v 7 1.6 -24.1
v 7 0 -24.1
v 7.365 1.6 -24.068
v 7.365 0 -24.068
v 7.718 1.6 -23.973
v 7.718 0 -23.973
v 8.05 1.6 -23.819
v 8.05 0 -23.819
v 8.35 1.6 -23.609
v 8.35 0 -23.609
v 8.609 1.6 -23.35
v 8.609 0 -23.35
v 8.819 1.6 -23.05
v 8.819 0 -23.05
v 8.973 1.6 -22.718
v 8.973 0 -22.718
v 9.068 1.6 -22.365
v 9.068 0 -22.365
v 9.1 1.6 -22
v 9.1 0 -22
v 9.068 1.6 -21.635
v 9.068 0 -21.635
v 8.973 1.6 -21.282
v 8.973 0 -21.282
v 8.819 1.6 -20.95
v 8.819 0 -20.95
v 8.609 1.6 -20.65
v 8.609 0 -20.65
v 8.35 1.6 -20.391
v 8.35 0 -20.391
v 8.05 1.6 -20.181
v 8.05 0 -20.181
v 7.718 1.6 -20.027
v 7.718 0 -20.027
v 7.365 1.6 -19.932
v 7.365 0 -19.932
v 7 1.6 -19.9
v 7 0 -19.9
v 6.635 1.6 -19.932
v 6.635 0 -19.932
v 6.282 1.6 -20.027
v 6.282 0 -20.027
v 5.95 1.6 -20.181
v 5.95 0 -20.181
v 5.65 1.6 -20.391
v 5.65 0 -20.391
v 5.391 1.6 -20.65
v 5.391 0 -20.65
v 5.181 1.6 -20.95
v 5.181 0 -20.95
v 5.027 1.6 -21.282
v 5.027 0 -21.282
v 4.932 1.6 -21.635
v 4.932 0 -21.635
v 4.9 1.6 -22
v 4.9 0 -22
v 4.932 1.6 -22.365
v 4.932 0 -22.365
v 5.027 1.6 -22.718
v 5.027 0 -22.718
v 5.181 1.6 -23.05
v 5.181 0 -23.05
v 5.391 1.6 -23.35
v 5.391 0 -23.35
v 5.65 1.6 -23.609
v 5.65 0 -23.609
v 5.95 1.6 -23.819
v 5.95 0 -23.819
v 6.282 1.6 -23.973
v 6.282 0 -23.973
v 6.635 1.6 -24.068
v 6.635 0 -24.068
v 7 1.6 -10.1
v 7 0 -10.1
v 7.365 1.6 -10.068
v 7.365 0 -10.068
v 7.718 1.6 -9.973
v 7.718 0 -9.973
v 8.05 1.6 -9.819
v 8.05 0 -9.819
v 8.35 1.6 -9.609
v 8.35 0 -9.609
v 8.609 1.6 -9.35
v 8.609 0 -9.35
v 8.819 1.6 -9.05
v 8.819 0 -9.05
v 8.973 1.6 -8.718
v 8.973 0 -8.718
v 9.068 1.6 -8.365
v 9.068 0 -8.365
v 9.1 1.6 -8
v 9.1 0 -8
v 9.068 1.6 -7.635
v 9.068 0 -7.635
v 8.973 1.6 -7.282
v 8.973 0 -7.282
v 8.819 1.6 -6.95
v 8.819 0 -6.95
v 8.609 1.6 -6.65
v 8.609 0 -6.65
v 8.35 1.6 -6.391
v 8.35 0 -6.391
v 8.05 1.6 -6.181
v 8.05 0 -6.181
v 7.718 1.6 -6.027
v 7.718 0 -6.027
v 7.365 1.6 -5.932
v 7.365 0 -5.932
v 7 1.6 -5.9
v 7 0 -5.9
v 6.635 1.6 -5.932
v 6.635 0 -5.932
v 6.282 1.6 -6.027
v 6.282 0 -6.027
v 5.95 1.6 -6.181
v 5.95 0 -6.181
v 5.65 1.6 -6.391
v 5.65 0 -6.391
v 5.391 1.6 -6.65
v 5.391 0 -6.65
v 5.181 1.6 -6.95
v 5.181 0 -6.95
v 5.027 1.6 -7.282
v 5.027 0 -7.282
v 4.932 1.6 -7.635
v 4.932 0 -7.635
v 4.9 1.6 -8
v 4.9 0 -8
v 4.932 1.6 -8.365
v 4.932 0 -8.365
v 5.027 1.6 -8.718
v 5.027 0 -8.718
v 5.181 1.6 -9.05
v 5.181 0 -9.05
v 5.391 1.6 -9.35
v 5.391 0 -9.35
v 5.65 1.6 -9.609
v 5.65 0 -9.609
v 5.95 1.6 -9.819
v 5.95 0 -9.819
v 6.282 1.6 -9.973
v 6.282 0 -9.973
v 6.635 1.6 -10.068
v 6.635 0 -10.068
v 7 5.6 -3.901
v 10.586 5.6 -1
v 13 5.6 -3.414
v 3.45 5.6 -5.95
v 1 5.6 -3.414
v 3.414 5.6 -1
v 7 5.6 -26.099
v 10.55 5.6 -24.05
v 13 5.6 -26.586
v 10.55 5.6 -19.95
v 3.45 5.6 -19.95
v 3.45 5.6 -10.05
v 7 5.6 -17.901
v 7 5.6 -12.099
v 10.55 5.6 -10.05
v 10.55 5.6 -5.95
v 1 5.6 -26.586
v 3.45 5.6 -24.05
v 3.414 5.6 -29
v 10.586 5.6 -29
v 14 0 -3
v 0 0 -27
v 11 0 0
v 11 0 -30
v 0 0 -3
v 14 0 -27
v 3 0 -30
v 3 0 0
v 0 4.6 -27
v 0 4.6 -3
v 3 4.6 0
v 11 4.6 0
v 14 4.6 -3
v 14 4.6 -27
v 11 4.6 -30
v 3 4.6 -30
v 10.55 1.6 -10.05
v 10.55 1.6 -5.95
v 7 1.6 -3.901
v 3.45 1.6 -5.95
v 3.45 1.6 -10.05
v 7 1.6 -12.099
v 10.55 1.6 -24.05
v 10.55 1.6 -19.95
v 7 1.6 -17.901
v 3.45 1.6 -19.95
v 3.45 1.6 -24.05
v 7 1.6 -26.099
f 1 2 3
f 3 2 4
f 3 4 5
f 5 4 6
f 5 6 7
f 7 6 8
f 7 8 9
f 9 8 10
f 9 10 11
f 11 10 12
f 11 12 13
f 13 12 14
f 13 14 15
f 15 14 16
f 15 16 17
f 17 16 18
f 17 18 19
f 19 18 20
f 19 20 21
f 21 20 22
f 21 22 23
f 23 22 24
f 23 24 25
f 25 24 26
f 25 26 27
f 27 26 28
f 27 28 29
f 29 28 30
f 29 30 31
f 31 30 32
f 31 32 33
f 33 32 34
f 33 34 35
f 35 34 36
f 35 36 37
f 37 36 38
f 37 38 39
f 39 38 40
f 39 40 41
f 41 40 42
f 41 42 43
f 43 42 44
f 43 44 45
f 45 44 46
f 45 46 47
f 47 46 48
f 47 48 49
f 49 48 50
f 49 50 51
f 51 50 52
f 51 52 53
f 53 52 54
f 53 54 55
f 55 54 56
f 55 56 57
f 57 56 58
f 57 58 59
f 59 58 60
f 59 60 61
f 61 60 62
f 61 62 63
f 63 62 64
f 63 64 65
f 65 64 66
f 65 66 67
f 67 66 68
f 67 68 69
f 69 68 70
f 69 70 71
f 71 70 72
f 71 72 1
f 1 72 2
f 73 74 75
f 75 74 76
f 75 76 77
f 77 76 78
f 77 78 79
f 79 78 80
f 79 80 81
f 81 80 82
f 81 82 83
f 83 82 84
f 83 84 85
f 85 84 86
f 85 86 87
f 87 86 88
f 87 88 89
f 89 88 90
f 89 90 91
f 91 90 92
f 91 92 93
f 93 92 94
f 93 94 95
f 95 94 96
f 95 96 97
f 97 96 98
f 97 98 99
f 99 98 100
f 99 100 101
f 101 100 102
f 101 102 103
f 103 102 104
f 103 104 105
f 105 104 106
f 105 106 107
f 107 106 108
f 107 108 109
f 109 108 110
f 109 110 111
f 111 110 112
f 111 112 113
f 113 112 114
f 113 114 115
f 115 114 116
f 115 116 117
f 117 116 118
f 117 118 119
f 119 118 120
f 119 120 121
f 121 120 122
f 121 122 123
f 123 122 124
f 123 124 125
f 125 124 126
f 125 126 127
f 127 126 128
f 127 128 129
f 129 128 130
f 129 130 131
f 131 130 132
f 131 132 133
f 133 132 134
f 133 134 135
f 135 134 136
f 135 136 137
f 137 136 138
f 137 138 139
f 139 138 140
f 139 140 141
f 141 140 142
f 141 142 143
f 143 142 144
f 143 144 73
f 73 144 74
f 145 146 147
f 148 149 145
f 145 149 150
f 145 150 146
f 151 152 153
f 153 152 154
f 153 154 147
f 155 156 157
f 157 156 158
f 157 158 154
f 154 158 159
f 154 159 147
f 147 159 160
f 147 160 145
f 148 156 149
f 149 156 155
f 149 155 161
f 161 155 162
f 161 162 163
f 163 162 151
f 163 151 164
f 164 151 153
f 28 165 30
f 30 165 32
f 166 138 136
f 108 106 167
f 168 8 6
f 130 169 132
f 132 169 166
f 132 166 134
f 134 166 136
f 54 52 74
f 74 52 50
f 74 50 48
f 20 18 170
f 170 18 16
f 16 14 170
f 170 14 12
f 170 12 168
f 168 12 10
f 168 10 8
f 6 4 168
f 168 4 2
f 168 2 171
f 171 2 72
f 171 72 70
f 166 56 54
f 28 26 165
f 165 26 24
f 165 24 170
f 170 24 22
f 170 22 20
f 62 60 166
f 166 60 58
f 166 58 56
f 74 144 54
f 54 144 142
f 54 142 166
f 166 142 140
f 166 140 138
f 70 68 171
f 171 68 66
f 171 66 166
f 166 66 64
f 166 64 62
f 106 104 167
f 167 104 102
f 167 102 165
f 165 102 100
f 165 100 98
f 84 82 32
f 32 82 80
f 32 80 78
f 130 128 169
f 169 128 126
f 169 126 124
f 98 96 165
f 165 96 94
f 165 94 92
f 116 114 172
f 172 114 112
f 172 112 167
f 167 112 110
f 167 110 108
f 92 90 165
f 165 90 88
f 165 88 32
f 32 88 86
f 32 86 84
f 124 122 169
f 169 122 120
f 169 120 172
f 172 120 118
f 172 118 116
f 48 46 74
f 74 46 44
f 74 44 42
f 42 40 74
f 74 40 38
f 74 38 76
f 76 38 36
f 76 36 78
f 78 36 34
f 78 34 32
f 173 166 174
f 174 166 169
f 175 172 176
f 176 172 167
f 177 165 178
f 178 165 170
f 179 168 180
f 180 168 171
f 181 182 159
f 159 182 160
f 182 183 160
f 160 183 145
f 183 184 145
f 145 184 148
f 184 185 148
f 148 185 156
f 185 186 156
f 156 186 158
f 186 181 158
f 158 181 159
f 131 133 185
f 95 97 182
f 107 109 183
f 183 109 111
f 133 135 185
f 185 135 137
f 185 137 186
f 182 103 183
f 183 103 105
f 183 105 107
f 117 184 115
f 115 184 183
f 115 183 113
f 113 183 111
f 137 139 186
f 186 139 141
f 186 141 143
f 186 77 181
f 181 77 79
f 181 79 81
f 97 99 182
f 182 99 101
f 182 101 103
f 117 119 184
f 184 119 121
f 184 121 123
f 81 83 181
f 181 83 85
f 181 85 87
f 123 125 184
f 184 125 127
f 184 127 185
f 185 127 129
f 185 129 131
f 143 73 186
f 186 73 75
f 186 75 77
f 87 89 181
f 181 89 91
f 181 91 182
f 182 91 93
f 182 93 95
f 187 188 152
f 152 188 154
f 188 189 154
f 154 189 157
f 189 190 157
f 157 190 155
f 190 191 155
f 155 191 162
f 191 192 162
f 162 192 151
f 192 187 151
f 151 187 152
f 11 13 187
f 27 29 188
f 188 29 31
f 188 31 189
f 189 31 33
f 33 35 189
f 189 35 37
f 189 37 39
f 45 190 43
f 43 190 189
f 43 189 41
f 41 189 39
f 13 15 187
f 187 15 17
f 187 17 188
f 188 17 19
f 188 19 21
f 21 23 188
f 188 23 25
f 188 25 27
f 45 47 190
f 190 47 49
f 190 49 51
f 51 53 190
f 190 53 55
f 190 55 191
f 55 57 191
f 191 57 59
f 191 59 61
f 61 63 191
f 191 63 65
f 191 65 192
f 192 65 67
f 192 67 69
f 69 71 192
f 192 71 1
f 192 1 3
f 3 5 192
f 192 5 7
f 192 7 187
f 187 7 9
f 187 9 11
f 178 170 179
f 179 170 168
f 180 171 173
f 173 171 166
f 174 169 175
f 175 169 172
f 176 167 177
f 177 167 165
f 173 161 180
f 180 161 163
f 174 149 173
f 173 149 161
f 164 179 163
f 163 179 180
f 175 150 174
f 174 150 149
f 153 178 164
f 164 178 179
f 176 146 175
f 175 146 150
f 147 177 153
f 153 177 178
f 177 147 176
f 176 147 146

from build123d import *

# Parameters (mm, degrees)
SKETCH1_W           = 14
SKETCH1_H           = 30
SKETCH1_R           = 2.1
BOSS_EXTRUDE1_DEPTH = 5.6
CUT_EXTRUDE1_DEPTH  = 4
CHAMFER1_SIZE       = 3
CHAMFER2_SIZE       = 1


with BuildPart() as part:
    # Sketch1 → Boss-Extrude1 (new body)
    with BuildSketch(Plane(origin=(0, 0, 0), x_dir=(1, 0, 0), z_dir=(0, 1, 0))):
        with Locations((7, 15)):
            Rectangle(SKETCH1_W, SKETCH1_H)
        with Locations(Location((7, 22, 0), (0, 0, 270))):
            Circle(SKETCH1_R, mode=Mode.SUBTRACT)
        with Locations(Location((7, 8, 0), (0, 0, 270))):
            Circle(SKETCH1_R, mode=Mode.SUBTRACT)
    extrude(amount=BOSS_EXTRUDE1_DEPTH)

    # Sketch2 → Cut-Extrude1 (cut)
    with BuildSketch(Plane(origin=(0, 5.6, 0), x_dir=(1, 0, 0), z_dir=(0, 1, 0))):
        Polygon((10.55, 24.049593456), (7, 26.099186911), (3.45, 24.049593456), (3.45, 19.950406544), (7, 17.900813089), (10.55, 19.950406544), align=None)
        Polygon((10.55, 10.049593456), (7, 12.099186911), (3.45, 10.049593456), (3.45, 5.950406544), (7, 3.900813089), (10.55, 5.950406544), align=None)
    extrude(amount=-CUT_EXTRUDE1_DEPTH, mode=Mode.SUBTRACT)

    # Chamfer1
    chamfer1_edges = [part.edges().sort_by_distance(p)[0] for p in [
        (0, 2.8, -30),
        (14, 2.8, -30),
        (14, 2.8, 0),
        (0, 2.8, 0),
    ]]
    chamfer(chamfer1_edges, length=CHAMFER1_SIZE)

    # Chamfer2
    chamfer2_edges = [part.edges().sort_by_distance(p)[0] for p in [
        (7, 5.6, -30),
        (14, 5.6, -15),
        (0, 5.6, -15),
        (7, 5.6, 0),
        (12.5, 5.6, -1.5),
        (1.5, 5.6, -1.5),
        (1.5, 5.6, -28.5),
        (12.5, 5.6, -28.5),
    ]]
    chamfer(chamfer2_edges, length=CHAMFER2_SIZE)


solid = part.part
